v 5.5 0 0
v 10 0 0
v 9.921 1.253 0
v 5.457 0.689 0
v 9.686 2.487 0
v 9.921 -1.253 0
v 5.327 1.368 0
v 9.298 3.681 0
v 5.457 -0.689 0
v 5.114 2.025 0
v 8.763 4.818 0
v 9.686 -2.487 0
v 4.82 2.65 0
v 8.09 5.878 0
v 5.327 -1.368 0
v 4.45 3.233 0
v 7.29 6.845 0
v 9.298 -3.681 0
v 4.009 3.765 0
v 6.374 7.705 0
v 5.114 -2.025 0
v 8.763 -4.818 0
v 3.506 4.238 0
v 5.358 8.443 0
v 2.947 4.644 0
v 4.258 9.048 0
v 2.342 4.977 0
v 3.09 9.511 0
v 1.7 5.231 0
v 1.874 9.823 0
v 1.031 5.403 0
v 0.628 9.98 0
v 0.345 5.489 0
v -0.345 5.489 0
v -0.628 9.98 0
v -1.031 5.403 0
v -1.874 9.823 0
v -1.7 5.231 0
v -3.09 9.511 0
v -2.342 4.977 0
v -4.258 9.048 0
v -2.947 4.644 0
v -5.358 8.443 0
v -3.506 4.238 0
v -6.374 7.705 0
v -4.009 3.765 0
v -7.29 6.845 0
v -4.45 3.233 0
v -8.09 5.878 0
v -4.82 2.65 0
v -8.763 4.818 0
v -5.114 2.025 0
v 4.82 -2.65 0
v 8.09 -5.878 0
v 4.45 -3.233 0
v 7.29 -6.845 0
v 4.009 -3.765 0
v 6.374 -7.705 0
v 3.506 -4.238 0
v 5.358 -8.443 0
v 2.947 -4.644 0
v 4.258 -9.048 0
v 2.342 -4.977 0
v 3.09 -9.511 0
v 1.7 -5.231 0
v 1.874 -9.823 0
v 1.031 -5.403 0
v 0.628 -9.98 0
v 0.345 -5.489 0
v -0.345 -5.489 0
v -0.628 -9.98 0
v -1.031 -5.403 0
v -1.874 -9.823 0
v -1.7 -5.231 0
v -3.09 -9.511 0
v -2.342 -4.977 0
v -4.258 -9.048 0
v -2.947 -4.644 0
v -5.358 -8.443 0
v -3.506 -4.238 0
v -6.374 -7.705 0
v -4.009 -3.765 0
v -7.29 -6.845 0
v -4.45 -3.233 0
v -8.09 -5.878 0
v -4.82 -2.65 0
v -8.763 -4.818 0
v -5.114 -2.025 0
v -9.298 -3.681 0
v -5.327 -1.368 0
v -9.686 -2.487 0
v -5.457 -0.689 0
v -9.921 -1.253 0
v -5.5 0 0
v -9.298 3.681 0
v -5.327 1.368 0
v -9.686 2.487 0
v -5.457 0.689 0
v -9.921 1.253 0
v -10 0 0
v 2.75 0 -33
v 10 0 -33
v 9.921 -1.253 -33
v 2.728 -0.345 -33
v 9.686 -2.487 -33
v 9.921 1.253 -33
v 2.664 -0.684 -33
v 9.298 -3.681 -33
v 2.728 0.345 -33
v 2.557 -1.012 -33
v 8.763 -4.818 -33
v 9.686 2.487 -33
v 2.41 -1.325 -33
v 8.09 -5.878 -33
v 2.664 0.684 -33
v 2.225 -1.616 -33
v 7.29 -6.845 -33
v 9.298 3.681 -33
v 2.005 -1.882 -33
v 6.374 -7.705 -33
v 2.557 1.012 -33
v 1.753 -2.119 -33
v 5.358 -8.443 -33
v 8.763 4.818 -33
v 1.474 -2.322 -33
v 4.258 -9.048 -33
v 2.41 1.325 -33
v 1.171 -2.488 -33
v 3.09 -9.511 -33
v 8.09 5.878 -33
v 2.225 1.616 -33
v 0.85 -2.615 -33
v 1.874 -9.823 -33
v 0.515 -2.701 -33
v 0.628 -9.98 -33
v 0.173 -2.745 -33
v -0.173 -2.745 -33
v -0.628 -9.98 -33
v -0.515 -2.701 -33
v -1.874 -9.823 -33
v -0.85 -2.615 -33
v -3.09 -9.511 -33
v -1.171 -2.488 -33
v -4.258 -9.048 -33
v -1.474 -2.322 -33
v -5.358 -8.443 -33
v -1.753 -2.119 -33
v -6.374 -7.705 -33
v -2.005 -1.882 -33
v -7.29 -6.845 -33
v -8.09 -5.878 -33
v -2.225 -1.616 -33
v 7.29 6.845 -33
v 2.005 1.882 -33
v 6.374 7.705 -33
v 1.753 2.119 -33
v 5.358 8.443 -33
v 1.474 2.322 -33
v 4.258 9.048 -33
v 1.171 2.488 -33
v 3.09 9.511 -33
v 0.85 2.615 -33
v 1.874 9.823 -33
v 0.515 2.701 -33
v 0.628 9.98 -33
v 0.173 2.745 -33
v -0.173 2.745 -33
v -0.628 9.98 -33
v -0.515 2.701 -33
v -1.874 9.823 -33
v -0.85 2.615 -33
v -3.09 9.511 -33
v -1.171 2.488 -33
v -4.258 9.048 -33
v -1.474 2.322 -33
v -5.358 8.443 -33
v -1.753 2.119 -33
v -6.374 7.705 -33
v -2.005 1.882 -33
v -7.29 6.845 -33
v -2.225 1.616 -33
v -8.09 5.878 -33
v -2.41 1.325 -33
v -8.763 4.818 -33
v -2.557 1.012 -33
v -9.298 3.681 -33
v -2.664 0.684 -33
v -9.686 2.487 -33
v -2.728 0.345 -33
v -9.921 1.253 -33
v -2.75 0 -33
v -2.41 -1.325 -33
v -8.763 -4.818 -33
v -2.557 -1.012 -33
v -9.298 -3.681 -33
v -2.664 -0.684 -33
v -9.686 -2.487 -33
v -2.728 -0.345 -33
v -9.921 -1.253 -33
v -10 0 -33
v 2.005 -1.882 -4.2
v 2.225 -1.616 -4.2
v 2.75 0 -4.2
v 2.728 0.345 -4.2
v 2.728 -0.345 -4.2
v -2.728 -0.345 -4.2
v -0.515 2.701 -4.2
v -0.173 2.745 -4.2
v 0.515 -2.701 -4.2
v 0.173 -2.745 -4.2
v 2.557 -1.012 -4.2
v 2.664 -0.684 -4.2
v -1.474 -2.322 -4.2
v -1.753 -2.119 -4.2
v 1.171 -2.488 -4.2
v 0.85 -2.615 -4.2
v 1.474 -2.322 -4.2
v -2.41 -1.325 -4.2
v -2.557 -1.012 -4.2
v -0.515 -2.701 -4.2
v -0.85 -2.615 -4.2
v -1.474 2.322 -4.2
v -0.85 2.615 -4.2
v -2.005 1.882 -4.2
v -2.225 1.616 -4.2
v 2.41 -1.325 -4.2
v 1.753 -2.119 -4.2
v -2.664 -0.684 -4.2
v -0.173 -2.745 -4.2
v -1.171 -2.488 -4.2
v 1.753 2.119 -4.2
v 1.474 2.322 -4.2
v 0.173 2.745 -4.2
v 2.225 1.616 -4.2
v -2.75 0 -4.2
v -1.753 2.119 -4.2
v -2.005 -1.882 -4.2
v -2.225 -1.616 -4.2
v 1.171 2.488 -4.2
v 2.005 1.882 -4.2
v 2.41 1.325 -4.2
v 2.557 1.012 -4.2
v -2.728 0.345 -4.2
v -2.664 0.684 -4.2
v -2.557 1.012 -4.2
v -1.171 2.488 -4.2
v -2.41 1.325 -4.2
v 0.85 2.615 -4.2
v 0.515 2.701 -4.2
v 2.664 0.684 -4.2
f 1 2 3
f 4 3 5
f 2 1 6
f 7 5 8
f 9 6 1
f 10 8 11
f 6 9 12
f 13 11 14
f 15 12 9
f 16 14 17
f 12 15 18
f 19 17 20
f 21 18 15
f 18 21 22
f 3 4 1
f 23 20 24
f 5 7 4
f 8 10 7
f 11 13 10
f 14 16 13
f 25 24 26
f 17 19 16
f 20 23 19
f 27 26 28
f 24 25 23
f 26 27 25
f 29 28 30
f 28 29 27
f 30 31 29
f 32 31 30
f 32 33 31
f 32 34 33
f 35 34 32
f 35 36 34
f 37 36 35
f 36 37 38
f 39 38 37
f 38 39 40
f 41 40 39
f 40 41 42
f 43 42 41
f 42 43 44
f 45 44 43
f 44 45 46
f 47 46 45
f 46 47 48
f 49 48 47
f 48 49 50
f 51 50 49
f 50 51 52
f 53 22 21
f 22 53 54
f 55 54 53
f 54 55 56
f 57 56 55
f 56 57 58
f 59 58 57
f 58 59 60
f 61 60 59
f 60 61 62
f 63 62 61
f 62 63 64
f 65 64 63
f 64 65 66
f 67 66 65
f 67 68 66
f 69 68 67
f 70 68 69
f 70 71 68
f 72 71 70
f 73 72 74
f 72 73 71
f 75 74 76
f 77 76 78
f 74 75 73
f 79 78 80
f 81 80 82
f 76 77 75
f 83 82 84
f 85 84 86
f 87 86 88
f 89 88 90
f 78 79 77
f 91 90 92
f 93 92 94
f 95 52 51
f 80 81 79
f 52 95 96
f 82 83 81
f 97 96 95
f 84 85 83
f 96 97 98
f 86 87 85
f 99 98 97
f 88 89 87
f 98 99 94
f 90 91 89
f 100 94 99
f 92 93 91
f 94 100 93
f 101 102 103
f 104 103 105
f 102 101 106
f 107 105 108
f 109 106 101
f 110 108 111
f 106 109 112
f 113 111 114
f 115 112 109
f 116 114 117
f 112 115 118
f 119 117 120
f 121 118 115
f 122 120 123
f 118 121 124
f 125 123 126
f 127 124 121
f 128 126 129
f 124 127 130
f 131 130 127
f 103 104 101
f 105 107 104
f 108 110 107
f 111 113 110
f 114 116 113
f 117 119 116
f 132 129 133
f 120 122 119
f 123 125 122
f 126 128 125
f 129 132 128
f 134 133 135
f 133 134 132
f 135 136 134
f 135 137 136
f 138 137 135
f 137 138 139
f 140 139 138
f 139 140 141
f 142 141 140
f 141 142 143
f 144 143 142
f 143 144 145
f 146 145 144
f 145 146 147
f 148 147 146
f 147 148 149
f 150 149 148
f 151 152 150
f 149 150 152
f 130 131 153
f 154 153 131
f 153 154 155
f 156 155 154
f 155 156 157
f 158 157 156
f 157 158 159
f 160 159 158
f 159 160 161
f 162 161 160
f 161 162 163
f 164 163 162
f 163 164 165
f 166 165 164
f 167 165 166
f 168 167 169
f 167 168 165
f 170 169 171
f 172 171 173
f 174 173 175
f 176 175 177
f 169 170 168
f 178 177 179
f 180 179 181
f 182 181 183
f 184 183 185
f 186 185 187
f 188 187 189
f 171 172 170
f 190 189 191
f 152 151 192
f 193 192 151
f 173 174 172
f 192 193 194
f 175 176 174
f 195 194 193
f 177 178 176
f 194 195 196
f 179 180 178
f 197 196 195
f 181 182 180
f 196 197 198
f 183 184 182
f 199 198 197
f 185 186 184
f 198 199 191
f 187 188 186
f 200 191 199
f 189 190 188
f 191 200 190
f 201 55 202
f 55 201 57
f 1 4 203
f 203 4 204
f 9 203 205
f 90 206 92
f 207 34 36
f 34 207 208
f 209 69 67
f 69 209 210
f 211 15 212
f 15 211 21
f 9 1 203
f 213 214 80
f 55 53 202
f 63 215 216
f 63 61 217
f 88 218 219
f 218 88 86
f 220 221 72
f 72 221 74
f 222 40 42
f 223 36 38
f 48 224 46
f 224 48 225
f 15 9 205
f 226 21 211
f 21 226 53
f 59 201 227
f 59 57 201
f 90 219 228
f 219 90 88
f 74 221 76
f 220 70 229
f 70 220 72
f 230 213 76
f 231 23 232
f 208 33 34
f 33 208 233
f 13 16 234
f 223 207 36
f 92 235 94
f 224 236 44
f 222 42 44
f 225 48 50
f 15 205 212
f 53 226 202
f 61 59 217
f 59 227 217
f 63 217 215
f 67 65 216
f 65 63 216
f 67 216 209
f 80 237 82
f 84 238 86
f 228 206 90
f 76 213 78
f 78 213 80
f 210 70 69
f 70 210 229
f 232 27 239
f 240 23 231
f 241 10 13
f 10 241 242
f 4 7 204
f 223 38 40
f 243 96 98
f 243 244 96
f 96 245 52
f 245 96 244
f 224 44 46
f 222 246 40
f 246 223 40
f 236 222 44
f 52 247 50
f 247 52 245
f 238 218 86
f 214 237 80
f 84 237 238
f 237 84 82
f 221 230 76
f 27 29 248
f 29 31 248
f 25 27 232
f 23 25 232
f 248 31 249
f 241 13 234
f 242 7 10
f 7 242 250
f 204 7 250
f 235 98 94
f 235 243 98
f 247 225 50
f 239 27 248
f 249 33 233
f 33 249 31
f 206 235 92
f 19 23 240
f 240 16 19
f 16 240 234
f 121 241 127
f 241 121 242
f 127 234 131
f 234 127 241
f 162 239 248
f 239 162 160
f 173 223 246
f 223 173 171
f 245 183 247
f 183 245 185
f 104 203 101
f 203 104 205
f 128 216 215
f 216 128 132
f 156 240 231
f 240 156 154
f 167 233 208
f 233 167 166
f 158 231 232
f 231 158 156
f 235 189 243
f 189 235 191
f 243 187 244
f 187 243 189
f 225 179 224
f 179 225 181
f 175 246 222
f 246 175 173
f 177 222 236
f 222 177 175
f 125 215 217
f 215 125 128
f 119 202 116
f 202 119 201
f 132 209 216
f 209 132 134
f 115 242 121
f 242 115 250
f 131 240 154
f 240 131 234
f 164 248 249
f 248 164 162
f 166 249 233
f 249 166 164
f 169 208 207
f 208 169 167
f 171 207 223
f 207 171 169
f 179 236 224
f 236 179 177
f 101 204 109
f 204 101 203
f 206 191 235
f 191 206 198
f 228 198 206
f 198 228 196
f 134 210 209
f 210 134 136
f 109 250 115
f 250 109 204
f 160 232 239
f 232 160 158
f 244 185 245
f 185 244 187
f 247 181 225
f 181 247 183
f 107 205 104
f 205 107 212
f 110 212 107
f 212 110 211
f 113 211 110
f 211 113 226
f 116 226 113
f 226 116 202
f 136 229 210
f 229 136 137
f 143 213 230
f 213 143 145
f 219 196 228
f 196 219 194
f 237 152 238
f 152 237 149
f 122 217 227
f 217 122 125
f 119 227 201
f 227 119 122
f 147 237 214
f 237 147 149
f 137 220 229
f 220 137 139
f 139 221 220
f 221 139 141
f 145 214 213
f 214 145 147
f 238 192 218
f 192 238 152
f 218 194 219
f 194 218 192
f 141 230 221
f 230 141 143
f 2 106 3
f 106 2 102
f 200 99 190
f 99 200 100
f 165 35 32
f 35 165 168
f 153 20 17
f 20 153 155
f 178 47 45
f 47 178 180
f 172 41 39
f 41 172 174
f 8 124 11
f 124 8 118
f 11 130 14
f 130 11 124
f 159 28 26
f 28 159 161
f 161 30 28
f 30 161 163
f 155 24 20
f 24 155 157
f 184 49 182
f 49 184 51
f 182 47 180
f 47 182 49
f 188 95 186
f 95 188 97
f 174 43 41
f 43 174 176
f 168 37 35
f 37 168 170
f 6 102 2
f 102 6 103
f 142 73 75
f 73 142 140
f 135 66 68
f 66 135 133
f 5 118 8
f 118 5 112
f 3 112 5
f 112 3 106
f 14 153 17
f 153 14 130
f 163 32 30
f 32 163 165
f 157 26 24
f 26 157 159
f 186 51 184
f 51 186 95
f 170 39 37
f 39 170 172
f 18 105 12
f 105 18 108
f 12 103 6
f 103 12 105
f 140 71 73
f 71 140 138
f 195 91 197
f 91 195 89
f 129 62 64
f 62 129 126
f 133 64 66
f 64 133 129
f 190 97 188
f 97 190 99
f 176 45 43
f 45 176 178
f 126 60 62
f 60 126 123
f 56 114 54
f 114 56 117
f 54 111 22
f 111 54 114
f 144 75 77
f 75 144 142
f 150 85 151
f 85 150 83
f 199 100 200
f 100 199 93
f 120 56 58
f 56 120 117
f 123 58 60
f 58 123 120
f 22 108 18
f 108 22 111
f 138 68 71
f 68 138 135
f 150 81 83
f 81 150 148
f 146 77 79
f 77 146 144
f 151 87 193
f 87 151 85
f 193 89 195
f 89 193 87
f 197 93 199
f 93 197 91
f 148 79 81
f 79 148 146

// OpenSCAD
$fn = 50;


difference() {
	union() {
		translate(v = [0, 0, -33.0000000000]) {
			cylinder(h = 33, r = 10.0000000000);
		}
		cylinder(h = 0, r = 19.0000000000);
	}
	union() {
		translate(v = [0, 0, 0]) {
			rotate(a = [0, 0, 0]) {
				difference() {
					union() {
						#translate(v = [0, 0, -33.0000000000]) {
							cylinder(h = 33, r = 2.2500000000);
						}
						#translate(v = [0, 0, -4.2000000000]) {
							cylinder(h = 4.2000000000, r1 = 2.7500000000, r2 = 5.5000000000);
						}
						#translate(v = [0, 0, -33.0000000000]) {
							cylinder(h = 33, r = 2.7500000000);
						}
						#translate(v = [0, 0, -33.0000000000]) {
							cylinder(h = 33, r = 2.2500000000);
						}
					}
					union();
				}
			}
		}
	}
}
